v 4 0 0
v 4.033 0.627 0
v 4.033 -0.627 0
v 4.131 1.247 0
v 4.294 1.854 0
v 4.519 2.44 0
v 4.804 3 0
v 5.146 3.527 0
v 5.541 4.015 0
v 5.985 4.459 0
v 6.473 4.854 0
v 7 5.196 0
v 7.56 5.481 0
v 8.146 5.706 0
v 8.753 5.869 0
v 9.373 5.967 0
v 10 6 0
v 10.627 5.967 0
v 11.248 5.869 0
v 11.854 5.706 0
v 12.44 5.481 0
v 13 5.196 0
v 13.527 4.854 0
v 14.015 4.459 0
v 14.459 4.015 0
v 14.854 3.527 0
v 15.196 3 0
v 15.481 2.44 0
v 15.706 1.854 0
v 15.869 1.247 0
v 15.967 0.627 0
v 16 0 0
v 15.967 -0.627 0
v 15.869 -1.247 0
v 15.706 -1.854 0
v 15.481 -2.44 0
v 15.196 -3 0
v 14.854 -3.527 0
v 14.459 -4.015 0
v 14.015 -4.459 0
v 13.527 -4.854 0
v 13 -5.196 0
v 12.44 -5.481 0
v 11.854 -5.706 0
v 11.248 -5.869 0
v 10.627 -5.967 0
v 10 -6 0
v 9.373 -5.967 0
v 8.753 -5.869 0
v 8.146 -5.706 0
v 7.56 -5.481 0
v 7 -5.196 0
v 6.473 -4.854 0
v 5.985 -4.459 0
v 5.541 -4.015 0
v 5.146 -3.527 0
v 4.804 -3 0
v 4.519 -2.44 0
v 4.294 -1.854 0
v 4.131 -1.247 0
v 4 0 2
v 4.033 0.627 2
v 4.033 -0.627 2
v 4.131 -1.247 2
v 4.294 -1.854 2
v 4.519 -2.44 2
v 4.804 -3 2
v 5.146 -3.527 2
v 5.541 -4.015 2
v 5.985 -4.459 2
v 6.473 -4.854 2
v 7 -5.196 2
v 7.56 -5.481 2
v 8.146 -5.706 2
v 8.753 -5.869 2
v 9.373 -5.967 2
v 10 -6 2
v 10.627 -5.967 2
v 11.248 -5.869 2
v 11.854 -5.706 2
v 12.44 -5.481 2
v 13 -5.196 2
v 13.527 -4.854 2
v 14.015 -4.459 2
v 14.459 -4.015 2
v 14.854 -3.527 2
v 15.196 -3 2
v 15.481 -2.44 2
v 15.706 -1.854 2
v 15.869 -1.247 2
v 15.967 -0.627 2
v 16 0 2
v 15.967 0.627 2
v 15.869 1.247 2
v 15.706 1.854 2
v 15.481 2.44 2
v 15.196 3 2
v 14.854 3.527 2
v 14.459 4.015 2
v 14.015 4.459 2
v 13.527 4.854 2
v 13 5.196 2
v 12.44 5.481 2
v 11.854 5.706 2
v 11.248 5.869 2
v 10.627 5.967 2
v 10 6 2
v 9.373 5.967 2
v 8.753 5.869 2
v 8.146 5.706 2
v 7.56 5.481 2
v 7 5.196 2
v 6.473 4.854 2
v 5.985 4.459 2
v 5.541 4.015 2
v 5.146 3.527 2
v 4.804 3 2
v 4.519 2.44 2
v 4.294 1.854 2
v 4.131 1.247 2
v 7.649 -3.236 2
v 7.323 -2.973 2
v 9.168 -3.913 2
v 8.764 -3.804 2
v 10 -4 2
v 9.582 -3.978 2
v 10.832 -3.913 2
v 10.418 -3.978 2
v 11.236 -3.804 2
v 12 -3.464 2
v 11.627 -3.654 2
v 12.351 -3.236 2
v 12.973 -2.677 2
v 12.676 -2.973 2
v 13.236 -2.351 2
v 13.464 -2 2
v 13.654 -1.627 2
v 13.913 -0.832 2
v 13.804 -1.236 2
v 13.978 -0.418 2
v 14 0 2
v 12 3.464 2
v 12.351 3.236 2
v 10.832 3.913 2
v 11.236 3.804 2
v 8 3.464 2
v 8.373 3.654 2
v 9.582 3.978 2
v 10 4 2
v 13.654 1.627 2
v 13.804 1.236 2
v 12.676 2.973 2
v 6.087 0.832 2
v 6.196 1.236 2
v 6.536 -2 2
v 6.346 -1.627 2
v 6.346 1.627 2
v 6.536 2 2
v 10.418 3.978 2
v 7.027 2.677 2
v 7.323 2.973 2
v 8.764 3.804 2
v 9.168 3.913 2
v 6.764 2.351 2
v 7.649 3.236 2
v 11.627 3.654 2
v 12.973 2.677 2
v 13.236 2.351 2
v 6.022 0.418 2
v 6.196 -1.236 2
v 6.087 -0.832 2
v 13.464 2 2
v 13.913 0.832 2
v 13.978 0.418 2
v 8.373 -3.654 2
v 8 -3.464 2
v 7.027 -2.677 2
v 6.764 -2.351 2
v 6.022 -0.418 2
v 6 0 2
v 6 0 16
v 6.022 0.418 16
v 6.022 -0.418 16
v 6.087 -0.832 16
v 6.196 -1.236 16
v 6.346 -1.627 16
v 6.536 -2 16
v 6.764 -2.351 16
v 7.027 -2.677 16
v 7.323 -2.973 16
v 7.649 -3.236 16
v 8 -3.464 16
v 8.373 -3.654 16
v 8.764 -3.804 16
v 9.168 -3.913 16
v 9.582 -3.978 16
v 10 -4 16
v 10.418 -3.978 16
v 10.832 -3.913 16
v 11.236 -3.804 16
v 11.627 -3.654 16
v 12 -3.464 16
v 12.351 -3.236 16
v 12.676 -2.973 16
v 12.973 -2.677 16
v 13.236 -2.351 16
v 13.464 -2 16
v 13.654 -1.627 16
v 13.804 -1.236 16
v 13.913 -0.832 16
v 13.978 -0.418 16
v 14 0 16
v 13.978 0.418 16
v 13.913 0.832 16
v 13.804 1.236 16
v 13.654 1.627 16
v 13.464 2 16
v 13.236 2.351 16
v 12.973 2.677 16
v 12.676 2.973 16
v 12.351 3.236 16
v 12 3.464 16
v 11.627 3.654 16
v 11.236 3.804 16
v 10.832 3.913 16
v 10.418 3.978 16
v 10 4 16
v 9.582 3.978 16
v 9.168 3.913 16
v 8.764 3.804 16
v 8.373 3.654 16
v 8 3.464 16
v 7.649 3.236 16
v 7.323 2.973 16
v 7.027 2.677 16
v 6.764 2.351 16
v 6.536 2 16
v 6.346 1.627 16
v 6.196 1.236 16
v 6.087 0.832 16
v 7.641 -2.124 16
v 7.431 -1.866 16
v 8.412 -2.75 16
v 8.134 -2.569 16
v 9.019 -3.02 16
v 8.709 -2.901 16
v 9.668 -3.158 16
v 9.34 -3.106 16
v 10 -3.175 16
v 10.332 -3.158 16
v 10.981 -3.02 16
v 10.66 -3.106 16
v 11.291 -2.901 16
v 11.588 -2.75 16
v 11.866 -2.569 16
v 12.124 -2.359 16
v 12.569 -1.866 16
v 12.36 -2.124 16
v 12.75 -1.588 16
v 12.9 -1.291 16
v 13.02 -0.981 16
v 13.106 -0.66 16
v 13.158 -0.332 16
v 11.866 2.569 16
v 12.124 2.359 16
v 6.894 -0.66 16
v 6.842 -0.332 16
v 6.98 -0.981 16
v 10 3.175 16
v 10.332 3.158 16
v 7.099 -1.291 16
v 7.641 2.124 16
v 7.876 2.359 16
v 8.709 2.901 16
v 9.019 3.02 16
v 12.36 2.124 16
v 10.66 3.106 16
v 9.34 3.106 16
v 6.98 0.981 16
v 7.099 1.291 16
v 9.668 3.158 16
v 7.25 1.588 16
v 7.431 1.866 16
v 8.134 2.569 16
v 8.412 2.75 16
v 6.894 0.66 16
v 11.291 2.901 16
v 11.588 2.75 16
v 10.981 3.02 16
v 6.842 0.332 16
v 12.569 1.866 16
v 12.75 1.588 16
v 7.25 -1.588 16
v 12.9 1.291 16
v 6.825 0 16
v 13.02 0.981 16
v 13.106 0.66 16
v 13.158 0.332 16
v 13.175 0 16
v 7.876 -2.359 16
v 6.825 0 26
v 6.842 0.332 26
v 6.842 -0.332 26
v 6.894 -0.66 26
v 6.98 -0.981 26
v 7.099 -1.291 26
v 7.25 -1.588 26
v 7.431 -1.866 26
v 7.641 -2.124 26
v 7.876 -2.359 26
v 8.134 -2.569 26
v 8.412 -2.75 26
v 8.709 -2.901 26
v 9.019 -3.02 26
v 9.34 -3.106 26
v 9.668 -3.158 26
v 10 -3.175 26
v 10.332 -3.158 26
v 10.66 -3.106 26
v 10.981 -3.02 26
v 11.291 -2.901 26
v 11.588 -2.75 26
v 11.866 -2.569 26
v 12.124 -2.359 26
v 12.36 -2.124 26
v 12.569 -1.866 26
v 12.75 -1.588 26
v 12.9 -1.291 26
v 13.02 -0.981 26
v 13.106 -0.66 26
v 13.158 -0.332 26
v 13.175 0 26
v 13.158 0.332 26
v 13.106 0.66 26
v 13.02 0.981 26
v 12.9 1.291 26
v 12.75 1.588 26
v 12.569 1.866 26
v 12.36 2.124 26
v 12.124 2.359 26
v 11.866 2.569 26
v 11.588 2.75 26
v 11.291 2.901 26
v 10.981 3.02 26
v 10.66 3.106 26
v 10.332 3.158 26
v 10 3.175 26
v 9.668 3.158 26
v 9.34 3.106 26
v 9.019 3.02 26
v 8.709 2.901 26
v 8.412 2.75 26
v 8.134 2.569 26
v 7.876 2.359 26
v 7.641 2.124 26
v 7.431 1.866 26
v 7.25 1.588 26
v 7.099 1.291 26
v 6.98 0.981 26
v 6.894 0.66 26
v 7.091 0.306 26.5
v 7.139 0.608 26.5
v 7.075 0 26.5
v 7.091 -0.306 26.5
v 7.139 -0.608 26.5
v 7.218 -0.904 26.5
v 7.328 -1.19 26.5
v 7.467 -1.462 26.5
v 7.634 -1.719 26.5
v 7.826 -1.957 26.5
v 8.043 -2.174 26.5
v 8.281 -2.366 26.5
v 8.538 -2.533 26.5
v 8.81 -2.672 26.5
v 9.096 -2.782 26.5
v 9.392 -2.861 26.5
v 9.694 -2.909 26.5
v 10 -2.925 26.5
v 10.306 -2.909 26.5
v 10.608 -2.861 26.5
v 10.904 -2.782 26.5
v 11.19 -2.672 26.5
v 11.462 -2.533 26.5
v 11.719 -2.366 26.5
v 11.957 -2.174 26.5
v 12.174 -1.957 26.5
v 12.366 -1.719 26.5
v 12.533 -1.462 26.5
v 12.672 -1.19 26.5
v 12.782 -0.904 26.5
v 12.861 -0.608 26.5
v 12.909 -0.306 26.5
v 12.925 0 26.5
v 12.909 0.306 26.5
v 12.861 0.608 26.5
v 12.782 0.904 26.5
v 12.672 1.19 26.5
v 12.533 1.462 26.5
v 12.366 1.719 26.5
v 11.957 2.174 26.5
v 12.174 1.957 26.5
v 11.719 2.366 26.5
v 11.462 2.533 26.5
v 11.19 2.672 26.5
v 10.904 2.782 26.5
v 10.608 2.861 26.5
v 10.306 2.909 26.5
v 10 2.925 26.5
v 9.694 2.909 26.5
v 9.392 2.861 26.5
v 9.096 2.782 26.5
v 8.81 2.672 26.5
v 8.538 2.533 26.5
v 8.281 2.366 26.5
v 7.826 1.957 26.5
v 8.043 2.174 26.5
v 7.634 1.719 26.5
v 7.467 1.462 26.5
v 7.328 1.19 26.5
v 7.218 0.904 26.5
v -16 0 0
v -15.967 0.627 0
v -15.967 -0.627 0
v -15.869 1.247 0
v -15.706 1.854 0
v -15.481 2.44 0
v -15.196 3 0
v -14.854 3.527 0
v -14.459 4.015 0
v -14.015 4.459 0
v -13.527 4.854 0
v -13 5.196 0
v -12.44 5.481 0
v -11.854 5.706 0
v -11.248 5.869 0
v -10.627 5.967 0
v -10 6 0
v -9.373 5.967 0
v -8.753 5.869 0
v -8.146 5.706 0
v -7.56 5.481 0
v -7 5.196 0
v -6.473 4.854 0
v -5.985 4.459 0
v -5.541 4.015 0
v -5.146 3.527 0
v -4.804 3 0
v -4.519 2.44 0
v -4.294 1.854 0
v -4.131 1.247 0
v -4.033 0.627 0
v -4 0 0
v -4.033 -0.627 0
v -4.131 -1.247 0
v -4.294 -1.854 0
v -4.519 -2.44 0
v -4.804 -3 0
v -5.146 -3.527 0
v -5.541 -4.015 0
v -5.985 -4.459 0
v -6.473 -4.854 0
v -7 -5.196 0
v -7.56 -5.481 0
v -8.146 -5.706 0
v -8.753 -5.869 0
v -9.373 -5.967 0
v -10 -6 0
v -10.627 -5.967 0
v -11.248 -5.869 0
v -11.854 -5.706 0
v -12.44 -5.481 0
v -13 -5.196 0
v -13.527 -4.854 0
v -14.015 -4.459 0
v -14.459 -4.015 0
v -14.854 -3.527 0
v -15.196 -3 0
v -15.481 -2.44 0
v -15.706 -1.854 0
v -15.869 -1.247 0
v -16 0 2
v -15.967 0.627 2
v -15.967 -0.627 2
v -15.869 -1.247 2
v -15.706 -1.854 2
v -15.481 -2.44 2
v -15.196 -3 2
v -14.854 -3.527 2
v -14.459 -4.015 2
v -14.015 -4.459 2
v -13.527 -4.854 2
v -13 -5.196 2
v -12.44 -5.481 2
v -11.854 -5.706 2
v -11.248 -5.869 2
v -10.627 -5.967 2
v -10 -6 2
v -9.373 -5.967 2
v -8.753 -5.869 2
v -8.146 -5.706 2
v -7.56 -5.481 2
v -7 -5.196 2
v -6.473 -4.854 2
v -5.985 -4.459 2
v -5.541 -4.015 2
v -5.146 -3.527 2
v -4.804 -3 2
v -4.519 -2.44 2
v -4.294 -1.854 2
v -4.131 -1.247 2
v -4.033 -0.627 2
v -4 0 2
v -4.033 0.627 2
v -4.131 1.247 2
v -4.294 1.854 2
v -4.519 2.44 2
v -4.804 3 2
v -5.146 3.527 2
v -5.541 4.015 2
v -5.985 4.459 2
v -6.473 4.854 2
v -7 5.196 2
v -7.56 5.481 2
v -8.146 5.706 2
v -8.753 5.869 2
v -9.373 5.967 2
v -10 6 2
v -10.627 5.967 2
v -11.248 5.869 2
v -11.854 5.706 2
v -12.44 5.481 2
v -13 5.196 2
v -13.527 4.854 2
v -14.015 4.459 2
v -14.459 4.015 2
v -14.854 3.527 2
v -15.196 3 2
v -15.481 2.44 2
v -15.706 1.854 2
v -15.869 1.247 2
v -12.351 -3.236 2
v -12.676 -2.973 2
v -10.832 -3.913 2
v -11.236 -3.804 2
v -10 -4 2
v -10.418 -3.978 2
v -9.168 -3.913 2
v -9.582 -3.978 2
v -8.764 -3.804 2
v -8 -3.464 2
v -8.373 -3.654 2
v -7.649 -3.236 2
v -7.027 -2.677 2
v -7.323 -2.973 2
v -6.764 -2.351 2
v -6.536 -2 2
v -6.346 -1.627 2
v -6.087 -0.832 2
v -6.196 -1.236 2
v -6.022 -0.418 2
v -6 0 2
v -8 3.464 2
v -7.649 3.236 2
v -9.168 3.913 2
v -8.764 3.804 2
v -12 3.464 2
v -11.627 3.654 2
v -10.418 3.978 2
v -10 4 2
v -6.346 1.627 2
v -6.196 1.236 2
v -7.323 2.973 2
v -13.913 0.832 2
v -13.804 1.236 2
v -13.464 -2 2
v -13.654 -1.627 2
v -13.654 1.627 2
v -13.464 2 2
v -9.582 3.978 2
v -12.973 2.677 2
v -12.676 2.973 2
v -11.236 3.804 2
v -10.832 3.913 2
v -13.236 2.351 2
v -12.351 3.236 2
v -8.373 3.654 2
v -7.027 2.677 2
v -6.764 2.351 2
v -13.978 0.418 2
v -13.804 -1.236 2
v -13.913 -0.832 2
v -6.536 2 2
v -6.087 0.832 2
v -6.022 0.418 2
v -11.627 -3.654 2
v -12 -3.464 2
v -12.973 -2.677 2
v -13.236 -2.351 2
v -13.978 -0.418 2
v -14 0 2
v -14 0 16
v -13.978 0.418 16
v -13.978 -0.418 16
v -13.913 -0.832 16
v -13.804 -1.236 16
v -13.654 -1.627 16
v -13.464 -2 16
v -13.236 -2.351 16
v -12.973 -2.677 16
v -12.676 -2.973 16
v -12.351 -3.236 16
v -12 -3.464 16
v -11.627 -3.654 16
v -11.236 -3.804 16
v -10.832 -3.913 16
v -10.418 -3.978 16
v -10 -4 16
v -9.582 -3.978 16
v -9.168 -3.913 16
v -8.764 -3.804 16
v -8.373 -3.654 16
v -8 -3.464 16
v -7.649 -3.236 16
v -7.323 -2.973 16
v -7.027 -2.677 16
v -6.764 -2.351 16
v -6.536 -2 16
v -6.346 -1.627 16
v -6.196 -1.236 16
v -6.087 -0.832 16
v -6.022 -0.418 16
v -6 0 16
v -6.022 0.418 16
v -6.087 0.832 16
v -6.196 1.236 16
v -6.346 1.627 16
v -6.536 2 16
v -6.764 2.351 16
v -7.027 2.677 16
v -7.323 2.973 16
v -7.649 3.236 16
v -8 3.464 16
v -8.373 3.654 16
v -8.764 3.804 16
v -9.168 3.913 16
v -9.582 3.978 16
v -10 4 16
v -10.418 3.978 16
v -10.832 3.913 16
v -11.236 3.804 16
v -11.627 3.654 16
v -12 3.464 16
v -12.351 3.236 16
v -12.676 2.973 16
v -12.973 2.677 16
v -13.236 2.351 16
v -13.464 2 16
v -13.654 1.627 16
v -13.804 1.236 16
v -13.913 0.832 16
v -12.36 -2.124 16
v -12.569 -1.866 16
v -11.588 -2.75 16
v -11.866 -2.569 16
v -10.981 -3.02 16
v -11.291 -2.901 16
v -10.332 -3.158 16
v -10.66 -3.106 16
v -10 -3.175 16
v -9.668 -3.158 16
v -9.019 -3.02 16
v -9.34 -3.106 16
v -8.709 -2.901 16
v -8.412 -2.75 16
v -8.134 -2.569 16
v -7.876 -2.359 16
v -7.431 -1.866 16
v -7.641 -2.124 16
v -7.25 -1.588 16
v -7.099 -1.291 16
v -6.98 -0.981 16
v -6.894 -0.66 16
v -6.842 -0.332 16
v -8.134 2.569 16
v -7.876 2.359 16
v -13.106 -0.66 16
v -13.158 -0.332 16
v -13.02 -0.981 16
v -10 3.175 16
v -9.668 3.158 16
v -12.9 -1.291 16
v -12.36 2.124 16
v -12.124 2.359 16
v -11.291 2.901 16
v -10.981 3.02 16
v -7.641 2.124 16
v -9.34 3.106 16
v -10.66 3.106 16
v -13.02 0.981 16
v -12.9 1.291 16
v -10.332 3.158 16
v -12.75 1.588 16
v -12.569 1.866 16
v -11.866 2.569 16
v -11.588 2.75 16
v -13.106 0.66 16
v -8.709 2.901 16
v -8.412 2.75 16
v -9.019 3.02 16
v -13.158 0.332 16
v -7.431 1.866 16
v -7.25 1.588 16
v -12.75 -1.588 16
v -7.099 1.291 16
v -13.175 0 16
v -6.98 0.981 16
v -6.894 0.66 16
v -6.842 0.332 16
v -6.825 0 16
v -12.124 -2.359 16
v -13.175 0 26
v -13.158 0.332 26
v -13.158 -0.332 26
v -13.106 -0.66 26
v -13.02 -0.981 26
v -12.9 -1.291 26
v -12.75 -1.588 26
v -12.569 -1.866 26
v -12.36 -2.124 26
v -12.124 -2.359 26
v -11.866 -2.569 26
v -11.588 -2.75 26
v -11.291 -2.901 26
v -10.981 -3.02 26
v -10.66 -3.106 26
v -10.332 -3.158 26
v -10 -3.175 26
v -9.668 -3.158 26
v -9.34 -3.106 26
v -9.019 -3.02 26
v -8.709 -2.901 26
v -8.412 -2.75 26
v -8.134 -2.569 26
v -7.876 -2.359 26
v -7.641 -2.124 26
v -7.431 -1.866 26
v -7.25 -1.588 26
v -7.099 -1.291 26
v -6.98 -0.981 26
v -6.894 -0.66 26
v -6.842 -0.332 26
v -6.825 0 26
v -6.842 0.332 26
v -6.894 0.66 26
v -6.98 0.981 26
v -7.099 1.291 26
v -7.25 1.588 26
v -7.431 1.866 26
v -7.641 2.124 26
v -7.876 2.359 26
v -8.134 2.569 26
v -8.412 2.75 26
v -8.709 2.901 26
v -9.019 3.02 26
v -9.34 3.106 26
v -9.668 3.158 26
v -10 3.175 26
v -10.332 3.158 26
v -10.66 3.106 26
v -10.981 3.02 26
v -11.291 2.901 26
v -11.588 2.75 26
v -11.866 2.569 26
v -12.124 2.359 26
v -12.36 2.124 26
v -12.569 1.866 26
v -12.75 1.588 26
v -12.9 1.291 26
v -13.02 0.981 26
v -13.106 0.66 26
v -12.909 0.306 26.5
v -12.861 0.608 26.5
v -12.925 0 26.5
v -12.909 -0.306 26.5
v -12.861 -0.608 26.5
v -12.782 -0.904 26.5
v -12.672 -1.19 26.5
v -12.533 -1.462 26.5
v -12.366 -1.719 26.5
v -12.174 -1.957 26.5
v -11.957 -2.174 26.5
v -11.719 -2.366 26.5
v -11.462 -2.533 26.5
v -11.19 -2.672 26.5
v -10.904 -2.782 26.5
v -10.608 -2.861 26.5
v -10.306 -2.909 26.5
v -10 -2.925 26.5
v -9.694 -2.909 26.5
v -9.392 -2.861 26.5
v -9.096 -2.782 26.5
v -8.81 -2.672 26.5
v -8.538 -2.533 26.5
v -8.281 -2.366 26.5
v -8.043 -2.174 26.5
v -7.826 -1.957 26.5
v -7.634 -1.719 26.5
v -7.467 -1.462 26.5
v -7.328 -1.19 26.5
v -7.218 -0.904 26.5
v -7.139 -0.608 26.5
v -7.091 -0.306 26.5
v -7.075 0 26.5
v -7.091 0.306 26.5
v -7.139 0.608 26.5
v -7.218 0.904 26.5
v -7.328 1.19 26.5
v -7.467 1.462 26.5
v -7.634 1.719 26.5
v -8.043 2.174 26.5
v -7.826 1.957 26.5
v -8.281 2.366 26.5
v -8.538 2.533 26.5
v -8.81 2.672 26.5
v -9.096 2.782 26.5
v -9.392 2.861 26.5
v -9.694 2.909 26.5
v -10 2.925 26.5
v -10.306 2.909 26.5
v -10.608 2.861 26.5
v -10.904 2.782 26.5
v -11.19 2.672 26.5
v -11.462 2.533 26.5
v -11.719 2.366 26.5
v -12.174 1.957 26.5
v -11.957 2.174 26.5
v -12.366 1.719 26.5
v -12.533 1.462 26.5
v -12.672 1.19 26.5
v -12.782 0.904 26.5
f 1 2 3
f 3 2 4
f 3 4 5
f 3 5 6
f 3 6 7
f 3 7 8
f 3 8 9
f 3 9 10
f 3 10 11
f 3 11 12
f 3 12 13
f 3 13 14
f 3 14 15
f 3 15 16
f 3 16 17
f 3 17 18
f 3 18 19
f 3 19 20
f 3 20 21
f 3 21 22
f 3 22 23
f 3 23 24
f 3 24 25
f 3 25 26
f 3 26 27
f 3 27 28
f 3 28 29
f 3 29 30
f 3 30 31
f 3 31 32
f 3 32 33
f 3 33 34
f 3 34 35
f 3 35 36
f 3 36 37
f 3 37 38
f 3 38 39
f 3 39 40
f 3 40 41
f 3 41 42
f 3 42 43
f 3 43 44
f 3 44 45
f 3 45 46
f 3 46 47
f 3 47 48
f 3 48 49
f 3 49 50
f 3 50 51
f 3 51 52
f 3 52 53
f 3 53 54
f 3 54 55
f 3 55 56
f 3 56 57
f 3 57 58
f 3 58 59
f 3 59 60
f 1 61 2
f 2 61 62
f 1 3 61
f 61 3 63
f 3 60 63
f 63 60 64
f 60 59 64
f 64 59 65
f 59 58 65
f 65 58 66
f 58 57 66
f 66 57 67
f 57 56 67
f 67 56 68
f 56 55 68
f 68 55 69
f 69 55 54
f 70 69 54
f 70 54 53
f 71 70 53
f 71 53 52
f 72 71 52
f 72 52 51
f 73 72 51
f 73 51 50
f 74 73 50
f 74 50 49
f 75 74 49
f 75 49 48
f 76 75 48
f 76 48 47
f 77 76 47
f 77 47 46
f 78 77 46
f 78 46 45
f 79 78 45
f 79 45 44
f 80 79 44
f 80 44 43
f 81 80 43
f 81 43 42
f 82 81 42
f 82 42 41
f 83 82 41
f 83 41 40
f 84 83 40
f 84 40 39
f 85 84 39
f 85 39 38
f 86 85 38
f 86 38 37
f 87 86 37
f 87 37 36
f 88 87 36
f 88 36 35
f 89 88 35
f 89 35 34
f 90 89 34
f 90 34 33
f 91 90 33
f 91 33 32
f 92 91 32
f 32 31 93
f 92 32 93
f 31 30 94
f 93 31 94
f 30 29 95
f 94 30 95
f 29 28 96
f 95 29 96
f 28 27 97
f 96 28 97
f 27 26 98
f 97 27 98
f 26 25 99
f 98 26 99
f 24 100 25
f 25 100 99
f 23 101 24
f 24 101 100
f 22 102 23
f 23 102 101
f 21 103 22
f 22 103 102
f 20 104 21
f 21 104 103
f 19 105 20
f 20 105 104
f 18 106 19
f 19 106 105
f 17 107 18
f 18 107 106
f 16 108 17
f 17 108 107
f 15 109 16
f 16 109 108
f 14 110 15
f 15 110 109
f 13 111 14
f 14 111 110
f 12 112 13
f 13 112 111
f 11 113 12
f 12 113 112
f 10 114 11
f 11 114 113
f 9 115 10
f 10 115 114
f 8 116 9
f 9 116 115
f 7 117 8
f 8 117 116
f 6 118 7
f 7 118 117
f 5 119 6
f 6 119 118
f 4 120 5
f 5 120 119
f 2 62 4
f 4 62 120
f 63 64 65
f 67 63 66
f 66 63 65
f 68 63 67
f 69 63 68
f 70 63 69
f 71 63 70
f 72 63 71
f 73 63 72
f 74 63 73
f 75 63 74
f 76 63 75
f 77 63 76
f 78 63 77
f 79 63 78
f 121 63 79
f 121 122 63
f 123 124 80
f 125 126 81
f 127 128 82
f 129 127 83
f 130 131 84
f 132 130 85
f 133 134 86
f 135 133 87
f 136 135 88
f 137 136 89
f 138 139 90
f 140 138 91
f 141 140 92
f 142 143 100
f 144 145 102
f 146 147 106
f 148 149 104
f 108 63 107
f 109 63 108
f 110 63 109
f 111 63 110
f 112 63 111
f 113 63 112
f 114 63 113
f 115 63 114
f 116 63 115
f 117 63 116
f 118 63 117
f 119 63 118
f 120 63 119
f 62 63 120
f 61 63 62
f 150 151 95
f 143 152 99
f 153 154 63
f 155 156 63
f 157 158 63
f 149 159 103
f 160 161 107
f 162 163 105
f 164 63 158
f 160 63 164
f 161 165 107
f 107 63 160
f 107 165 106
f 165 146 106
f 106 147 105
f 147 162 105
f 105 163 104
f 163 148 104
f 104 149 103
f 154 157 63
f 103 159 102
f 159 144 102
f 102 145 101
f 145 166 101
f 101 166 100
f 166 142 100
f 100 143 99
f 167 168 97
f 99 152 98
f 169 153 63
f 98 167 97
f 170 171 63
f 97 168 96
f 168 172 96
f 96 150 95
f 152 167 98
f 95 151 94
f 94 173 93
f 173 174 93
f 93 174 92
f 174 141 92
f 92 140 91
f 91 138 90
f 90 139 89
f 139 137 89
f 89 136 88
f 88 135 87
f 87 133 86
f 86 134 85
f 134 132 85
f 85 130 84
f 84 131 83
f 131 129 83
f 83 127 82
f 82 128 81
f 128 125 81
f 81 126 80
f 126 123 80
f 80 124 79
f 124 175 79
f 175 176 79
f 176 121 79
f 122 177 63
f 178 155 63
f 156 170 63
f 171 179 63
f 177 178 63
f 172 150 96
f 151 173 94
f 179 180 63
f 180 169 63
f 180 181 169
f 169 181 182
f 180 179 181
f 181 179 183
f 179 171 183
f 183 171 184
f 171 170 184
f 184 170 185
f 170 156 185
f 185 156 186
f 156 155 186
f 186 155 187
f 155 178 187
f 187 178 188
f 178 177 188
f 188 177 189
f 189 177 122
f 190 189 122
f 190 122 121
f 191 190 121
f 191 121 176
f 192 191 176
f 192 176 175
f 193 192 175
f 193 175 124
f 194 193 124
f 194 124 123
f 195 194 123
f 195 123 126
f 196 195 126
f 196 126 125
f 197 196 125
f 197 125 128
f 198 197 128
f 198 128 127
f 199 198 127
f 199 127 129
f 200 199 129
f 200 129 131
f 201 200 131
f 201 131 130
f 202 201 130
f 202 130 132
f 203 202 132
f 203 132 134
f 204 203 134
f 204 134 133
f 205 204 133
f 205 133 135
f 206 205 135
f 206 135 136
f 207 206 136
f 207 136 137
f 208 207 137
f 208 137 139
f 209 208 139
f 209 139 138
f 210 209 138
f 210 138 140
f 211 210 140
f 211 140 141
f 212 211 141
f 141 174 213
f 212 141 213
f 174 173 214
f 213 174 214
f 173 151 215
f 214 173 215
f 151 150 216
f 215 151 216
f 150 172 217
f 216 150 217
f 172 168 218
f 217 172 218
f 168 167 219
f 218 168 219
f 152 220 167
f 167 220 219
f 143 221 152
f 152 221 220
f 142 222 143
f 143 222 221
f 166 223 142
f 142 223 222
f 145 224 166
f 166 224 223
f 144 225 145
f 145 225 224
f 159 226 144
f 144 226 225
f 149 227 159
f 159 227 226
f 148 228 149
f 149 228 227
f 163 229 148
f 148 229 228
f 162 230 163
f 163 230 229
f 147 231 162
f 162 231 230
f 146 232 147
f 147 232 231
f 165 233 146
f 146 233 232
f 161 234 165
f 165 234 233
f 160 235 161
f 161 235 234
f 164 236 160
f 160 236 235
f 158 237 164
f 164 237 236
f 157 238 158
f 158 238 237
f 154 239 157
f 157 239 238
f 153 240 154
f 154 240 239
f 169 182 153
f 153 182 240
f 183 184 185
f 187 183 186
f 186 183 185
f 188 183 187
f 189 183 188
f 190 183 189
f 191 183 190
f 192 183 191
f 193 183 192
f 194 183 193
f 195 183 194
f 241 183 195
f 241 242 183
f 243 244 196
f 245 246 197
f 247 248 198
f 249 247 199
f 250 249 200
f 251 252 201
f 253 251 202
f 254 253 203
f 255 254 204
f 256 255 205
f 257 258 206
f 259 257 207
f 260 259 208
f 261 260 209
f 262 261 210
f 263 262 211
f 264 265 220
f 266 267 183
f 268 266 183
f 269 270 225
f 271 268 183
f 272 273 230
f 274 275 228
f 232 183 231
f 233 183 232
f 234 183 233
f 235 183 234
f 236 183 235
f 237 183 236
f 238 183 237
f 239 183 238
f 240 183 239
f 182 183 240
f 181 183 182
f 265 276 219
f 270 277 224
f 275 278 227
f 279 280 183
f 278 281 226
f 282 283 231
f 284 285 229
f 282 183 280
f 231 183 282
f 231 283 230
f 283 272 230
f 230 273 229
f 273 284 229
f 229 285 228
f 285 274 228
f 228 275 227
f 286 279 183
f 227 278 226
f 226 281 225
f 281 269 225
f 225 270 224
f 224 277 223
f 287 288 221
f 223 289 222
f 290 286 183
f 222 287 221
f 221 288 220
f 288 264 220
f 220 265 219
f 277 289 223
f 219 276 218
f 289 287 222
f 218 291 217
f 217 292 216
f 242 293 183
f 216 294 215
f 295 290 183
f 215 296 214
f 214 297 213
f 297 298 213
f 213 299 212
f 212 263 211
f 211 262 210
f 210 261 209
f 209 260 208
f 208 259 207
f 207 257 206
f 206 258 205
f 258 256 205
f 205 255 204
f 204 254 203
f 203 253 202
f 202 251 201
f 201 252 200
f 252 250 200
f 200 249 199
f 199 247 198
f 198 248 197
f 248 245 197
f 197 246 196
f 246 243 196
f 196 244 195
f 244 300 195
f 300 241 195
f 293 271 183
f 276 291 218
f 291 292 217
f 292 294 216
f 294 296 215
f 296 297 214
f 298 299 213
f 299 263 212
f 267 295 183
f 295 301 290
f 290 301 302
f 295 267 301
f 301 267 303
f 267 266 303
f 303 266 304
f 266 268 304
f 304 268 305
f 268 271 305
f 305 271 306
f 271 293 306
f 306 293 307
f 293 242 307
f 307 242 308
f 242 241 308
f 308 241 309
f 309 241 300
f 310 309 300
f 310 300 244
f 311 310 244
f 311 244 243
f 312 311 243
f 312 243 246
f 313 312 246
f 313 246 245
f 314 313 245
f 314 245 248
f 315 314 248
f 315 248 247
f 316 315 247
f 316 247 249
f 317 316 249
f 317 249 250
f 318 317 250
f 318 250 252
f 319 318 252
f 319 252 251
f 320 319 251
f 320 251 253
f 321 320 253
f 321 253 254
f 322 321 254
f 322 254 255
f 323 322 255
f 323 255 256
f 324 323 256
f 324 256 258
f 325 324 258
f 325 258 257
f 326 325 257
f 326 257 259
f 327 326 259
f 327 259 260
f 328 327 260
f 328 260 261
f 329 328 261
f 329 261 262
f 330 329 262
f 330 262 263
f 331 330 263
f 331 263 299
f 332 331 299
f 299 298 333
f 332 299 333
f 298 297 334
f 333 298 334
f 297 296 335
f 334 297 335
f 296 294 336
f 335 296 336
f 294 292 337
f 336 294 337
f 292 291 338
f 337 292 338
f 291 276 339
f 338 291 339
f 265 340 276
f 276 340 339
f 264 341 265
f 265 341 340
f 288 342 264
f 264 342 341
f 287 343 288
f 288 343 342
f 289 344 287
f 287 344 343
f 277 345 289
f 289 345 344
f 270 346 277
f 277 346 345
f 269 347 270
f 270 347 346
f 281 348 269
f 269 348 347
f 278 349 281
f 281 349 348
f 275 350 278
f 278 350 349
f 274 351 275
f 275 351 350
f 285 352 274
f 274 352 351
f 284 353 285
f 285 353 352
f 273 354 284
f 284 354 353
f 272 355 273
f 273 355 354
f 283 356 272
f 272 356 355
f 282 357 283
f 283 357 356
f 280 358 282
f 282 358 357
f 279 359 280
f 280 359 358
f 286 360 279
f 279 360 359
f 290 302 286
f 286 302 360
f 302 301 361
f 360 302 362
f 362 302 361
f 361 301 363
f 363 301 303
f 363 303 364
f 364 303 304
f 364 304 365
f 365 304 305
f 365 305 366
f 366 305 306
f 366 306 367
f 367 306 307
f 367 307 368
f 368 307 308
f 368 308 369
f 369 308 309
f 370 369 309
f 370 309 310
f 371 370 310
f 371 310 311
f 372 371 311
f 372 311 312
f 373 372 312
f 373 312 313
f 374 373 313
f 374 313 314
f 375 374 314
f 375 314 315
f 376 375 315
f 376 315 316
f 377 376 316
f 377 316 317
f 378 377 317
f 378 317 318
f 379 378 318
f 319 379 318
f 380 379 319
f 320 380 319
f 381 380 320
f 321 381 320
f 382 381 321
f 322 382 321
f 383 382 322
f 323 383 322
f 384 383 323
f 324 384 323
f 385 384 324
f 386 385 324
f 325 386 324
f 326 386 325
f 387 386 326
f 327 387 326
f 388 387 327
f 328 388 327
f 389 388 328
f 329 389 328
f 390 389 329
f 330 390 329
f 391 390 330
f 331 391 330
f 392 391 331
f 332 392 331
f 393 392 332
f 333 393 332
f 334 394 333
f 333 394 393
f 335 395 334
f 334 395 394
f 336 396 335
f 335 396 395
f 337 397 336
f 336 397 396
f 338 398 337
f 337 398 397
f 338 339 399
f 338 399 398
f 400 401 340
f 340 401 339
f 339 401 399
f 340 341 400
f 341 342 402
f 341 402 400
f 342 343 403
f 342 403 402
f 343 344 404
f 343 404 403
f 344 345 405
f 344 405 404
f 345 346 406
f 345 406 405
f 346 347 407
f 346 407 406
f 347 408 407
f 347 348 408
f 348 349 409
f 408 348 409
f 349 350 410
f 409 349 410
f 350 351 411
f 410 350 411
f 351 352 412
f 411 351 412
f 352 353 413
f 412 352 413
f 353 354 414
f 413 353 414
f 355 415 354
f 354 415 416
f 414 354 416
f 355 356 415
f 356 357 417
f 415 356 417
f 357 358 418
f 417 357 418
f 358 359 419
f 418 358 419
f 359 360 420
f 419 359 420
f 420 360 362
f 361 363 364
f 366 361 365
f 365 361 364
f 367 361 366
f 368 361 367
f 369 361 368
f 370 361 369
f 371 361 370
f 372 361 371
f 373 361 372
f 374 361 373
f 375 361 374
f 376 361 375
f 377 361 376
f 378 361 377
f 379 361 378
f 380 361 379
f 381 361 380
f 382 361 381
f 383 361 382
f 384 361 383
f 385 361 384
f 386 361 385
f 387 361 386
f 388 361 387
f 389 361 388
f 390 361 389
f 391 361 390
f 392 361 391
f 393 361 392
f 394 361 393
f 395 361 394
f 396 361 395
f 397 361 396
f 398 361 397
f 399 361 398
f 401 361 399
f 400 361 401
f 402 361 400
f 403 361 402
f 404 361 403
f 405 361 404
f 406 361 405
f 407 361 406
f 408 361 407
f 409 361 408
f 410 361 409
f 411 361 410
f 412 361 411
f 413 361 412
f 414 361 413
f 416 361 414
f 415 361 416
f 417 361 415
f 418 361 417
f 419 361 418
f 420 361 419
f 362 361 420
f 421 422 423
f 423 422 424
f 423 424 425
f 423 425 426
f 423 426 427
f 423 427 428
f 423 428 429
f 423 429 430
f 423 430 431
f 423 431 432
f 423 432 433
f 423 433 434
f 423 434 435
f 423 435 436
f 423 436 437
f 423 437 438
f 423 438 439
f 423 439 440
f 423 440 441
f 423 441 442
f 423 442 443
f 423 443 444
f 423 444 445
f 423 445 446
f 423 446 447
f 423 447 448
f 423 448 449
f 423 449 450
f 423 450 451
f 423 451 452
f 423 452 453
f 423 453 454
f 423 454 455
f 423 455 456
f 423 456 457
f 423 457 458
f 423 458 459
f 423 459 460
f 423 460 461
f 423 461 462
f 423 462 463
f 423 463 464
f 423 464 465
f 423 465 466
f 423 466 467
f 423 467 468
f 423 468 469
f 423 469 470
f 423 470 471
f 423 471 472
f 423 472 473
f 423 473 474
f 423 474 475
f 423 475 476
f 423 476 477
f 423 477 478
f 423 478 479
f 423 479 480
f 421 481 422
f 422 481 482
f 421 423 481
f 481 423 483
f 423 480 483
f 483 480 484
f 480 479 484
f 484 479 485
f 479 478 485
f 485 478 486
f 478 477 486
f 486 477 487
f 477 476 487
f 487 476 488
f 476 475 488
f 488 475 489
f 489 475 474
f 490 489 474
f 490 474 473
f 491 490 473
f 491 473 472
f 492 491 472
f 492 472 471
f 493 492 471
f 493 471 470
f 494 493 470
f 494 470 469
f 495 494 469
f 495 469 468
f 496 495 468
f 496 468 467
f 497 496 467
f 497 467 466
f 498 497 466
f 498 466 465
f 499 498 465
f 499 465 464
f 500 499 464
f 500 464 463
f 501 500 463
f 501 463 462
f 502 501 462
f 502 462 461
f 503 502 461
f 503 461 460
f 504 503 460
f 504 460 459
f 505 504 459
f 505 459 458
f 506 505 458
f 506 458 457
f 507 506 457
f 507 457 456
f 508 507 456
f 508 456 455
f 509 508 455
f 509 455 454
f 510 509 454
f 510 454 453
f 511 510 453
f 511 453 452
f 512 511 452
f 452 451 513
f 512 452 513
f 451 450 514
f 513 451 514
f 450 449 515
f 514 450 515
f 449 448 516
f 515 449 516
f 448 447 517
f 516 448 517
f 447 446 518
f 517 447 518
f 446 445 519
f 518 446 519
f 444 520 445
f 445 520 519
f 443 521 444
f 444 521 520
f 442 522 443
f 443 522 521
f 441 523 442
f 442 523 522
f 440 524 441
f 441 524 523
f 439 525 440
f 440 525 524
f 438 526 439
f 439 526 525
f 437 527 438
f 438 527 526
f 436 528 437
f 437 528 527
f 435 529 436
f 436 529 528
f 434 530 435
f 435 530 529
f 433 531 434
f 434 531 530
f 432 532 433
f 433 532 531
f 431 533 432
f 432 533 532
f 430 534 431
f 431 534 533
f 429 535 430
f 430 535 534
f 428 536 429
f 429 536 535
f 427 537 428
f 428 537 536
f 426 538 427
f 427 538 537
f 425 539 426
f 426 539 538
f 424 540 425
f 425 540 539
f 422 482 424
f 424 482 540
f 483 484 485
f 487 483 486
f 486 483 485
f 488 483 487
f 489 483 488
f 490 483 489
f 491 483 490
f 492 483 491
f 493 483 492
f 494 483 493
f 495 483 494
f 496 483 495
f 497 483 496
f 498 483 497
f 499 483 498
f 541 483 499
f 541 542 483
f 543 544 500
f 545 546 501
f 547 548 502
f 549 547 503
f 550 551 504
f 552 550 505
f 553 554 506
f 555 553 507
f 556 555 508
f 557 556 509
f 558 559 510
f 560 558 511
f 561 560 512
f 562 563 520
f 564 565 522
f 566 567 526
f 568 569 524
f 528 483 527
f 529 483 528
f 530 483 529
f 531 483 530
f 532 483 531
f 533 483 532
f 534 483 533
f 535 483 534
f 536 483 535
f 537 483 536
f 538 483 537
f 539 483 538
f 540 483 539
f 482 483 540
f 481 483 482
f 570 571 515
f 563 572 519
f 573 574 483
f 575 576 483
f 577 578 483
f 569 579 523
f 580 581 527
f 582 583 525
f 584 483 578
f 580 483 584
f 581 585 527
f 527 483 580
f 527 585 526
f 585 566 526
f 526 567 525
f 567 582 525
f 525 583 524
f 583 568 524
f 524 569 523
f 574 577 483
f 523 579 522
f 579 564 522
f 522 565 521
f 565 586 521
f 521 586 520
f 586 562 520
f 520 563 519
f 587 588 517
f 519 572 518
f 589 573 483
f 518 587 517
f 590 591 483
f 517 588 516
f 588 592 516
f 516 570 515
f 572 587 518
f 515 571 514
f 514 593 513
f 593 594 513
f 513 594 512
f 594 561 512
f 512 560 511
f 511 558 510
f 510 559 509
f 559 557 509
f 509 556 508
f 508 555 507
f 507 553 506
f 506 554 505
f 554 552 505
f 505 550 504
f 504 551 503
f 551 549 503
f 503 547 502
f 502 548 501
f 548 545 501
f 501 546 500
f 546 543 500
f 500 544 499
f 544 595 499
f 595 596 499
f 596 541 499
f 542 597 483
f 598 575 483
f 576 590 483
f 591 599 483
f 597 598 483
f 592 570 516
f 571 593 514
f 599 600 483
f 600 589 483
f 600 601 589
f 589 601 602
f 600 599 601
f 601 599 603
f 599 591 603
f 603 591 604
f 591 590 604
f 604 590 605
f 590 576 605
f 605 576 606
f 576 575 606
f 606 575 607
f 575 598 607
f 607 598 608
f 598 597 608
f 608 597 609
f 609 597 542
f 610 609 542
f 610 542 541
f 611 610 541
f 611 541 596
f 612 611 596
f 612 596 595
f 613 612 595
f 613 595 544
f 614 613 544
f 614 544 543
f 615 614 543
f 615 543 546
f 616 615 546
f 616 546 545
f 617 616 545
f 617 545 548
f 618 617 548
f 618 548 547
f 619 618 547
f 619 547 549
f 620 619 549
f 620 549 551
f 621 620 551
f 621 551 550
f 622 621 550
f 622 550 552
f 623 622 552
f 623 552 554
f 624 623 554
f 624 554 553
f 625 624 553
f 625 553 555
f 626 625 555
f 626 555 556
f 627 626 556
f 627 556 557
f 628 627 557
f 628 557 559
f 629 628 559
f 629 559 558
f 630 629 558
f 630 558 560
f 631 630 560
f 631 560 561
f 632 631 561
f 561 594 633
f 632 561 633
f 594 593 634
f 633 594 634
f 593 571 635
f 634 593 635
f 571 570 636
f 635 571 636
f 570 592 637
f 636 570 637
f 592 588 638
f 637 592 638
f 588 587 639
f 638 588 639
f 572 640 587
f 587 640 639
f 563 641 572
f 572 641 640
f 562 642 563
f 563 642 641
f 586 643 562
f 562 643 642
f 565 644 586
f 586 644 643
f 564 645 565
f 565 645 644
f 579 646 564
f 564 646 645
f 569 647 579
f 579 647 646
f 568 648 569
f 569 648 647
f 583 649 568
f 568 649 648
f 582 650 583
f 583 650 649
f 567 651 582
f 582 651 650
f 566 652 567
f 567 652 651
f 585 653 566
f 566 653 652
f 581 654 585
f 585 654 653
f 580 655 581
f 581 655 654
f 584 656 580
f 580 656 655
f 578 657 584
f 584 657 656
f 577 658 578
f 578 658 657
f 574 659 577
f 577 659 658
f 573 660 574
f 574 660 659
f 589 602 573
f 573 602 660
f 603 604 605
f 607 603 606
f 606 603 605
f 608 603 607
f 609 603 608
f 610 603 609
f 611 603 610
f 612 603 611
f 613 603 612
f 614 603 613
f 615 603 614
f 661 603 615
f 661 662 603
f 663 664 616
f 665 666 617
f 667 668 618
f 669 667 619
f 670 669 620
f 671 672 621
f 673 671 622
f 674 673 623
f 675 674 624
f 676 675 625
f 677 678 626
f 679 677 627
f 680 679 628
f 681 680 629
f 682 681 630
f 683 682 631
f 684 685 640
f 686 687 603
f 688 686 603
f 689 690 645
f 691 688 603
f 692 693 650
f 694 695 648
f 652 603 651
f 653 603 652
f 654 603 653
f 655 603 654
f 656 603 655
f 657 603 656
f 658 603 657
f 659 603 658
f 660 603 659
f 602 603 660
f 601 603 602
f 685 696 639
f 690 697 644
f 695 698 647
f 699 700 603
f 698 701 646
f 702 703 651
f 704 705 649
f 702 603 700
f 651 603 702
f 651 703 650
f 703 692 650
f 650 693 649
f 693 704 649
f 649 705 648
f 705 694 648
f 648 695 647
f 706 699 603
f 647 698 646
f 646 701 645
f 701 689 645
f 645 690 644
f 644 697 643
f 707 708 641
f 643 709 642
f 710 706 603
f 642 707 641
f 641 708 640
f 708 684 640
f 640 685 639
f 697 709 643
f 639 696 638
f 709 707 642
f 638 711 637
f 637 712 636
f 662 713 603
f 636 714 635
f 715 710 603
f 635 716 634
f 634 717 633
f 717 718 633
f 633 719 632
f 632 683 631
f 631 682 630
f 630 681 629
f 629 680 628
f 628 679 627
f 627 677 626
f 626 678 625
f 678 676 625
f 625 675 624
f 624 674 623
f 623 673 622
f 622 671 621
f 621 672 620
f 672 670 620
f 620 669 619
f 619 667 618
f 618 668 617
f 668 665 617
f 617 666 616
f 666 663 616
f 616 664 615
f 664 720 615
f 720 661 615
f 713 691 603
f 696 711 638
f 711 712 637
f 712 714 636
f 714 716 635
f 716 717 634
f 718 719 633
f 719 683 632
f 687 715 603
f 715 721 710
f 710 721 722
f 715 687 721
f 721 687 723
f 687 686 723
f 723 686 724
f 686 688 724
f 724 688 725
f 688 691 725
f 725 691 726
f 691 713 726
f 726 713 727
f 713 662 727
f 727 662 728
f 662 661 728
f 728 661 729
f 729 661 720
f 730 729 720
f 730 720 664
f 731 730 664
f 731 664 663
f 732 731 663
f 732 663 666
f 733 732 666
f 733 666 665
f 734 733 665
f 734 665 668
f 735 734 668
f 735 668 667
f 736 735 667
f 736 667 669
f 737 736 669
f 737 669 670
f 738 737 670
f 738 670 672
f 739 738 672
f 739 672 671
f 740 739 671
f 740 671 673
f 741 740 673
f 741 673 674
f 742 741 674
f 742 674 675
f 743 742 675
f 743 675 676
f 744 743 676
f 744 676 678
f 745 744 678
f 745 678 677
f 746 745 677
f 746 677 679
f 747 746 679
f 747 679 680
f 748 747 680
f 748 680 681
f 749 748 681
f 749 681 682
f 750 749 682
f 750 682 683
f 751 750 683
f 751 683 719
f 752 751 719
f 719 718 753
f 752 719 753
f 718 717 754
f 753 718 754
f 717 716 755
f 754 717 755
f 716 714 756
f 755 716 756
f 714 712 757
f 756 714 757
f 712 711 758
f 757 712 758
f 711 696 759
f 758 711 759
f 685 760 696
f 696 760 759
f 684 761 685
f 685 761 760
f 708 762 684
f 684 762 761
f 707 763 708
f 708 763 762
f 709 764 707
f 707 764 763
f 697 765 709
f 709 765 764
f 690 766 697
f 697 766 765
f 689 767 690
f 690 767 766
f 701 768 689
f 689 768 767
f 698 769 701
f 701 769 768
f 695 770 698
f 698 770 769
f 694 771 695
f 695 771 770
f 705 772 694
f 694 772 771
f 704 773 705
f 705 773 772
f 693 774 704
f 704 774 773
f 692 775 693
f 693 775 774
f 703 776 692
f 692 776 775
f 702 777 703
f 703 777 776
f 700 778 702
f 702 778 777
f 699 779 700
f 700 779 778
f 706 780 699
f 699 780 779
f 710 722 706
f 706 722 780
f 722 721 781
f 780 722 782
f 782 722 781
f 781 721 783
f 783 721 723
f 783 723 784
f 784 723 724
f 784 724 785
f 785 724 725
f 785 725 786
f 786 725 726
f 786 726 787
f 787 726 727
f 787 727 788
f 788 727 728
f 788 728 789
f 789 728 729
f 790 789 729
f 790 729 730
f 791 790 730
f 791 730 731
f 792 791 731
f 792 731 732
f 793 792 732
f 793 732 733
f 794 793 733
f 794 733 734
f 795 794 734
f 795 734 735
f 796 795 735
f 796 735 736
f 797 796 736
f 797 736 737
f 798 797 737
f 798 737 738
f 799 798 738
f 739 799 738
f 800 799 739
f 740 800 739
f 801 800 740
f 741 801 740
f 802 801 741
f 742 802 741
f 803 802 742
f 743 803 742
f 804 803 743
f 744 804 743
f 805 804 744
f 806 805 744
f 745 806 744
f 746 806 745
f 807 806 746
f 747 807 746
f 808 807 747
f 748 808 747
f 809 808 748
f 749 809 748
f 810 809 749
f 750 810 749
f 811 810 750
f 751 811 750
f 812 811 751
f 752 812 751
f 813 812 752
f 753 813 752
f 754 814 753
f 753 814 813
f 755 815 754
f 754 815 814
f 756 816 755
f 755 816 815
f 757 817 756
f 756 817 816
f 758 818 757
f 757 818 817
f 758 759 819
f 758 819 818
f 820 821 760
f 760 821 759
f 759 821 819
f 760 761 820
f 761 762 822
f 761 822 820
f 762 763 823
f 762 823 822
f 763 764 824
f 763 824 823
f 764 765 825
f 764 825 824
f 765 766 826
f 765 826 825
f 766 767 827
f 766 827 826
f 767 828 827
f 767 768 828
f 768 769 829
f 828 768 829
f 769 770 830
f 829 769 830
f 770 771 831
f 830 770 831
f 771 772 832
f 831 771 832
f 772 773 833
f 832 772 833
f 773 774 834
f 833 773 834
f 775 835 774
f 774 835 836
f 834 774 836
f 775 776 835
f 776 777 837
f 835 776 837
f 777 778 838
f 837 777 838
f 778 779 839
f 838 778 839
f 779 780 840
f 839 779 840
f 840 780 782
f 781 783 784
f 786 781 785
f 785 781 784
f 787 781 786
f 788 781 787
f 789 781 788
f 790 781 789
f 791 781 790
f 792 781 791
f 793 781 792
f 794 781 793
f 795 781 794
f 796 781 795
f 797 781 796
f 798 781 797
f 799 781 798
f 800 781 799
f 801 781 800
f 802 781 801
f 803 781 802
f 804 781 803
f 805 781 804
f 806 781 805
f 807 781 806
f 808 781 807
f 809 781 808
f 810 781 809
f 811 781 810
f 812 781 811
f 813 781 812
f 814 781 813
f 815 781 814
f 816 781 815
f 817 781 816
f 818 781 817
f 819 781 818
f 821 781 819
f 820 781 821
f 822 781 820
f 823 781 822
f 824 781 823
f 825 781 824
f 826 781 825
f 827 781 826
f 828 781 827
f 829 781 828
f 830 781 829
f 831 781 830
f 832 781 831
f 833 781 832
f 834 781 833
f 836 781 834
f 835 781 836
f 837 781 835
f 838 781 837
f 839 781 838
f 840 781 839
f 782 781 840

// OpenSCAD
// 2 pins for filament spool roller; last modified 2014-03-26
// pins to go through frame and 608ZZ bearing with 8mm bore, and support with .25" bore

// define smoothness of pin
$fn=60;

// for 608ZZ bearing actual bore size is 8mm; support hole size designed as .25" (=6.35mm)
// - empirically determined pin diameters to fit printed and reamed holes in PLA and ABS
// - always print 2 pins at a time for consistent "diameter" results without remelting
// - the pins might have a somewhat eliptical cross-section, rather than circular, but
//   tune the values in the next line to make them workable (when 2 are printed)
borediameter=8.00; supportdiameter=6.35;  // adjust to fit frame, 608ZZ bearing, support

br=borediameter/2;       // radius of bore of bearing and frame hole
sr=supportdiameter/2;    // radius of support hole
cr=br+2;                 // radius of cap of pin (outside of frame)

bw=7.00;  // 7mm width of single 608 bearing; adjust for doubled bearing or custom roller

// define radii and heights of segments of the pin

p0r=cr;  p0h=2.0;               // cap of pin, to be outside of frame
p1r=br;  p1h=5.00;              // frame
p2r=br;  p2h=0.75;              // "washer" printed inside frame
p3r=br;  p3h=0.25;              // gap to bearing
p4r=br;  p4h=bw;                // bearing width
p5r=br;  p5h=0.25;              // gap to bearing
p6r=br;  p6h=0.75;              // "washer" printed inside support
p7r=sr;  p7h=10.0;              // support
p8r1=sr; p8r2=sr-0.25; p8h=0.5; // tapered tip 

p00h=p0h;
p01h=p0h+p1h;
p02h=p0h+p1h+p2h;
p03h=p0h+p1h+p2h+p3h;
p04h=p0h+p1h+p2h+p3h+p4h;
p05h=p0h+p1h+p2h+p3h+p4h+p5h;
p06h=p0h+p1h+p2h+p3h+p4h+p5h+p6h;
p07h=p0h+p1h+p2h+p3h+p4h+p5h+p6h+p7h;

// stack up segments of the pin, giving one complete pin assembly (decreasing diameters)

module onepin()
 {translate([0,0,p07h]) cylinder(h=p8h,r1=p8r1,r2=p8r2);
  translate([0,0,p06h]) cylinder(h=p7h,r=p7r);
  translate([0,0,p05h]) cylinder(h=p6h,r=p6r);
  translate([0,0,p04h]) cylinder(h=p5h,r=p5r);
  translate([0,0,p03h]) cylinder(h=p4h,r=p4r);
  translate([0,0,p02h]) cylinder(h=p3h,r=p3r);
  translate([0,0,p01h]) cylinder(h=p2h,r=p2r);
  translate([0,0,p00h]) cylinder(h=p1h,r=p1r);
                        cylinder(h=p0h,r=p0r);
 }

// create two pins, diameters will vary if printed other than 2 at a time

translate([+10,0,0]) onepin();
translate([-10,0,0]) onepin();

//
